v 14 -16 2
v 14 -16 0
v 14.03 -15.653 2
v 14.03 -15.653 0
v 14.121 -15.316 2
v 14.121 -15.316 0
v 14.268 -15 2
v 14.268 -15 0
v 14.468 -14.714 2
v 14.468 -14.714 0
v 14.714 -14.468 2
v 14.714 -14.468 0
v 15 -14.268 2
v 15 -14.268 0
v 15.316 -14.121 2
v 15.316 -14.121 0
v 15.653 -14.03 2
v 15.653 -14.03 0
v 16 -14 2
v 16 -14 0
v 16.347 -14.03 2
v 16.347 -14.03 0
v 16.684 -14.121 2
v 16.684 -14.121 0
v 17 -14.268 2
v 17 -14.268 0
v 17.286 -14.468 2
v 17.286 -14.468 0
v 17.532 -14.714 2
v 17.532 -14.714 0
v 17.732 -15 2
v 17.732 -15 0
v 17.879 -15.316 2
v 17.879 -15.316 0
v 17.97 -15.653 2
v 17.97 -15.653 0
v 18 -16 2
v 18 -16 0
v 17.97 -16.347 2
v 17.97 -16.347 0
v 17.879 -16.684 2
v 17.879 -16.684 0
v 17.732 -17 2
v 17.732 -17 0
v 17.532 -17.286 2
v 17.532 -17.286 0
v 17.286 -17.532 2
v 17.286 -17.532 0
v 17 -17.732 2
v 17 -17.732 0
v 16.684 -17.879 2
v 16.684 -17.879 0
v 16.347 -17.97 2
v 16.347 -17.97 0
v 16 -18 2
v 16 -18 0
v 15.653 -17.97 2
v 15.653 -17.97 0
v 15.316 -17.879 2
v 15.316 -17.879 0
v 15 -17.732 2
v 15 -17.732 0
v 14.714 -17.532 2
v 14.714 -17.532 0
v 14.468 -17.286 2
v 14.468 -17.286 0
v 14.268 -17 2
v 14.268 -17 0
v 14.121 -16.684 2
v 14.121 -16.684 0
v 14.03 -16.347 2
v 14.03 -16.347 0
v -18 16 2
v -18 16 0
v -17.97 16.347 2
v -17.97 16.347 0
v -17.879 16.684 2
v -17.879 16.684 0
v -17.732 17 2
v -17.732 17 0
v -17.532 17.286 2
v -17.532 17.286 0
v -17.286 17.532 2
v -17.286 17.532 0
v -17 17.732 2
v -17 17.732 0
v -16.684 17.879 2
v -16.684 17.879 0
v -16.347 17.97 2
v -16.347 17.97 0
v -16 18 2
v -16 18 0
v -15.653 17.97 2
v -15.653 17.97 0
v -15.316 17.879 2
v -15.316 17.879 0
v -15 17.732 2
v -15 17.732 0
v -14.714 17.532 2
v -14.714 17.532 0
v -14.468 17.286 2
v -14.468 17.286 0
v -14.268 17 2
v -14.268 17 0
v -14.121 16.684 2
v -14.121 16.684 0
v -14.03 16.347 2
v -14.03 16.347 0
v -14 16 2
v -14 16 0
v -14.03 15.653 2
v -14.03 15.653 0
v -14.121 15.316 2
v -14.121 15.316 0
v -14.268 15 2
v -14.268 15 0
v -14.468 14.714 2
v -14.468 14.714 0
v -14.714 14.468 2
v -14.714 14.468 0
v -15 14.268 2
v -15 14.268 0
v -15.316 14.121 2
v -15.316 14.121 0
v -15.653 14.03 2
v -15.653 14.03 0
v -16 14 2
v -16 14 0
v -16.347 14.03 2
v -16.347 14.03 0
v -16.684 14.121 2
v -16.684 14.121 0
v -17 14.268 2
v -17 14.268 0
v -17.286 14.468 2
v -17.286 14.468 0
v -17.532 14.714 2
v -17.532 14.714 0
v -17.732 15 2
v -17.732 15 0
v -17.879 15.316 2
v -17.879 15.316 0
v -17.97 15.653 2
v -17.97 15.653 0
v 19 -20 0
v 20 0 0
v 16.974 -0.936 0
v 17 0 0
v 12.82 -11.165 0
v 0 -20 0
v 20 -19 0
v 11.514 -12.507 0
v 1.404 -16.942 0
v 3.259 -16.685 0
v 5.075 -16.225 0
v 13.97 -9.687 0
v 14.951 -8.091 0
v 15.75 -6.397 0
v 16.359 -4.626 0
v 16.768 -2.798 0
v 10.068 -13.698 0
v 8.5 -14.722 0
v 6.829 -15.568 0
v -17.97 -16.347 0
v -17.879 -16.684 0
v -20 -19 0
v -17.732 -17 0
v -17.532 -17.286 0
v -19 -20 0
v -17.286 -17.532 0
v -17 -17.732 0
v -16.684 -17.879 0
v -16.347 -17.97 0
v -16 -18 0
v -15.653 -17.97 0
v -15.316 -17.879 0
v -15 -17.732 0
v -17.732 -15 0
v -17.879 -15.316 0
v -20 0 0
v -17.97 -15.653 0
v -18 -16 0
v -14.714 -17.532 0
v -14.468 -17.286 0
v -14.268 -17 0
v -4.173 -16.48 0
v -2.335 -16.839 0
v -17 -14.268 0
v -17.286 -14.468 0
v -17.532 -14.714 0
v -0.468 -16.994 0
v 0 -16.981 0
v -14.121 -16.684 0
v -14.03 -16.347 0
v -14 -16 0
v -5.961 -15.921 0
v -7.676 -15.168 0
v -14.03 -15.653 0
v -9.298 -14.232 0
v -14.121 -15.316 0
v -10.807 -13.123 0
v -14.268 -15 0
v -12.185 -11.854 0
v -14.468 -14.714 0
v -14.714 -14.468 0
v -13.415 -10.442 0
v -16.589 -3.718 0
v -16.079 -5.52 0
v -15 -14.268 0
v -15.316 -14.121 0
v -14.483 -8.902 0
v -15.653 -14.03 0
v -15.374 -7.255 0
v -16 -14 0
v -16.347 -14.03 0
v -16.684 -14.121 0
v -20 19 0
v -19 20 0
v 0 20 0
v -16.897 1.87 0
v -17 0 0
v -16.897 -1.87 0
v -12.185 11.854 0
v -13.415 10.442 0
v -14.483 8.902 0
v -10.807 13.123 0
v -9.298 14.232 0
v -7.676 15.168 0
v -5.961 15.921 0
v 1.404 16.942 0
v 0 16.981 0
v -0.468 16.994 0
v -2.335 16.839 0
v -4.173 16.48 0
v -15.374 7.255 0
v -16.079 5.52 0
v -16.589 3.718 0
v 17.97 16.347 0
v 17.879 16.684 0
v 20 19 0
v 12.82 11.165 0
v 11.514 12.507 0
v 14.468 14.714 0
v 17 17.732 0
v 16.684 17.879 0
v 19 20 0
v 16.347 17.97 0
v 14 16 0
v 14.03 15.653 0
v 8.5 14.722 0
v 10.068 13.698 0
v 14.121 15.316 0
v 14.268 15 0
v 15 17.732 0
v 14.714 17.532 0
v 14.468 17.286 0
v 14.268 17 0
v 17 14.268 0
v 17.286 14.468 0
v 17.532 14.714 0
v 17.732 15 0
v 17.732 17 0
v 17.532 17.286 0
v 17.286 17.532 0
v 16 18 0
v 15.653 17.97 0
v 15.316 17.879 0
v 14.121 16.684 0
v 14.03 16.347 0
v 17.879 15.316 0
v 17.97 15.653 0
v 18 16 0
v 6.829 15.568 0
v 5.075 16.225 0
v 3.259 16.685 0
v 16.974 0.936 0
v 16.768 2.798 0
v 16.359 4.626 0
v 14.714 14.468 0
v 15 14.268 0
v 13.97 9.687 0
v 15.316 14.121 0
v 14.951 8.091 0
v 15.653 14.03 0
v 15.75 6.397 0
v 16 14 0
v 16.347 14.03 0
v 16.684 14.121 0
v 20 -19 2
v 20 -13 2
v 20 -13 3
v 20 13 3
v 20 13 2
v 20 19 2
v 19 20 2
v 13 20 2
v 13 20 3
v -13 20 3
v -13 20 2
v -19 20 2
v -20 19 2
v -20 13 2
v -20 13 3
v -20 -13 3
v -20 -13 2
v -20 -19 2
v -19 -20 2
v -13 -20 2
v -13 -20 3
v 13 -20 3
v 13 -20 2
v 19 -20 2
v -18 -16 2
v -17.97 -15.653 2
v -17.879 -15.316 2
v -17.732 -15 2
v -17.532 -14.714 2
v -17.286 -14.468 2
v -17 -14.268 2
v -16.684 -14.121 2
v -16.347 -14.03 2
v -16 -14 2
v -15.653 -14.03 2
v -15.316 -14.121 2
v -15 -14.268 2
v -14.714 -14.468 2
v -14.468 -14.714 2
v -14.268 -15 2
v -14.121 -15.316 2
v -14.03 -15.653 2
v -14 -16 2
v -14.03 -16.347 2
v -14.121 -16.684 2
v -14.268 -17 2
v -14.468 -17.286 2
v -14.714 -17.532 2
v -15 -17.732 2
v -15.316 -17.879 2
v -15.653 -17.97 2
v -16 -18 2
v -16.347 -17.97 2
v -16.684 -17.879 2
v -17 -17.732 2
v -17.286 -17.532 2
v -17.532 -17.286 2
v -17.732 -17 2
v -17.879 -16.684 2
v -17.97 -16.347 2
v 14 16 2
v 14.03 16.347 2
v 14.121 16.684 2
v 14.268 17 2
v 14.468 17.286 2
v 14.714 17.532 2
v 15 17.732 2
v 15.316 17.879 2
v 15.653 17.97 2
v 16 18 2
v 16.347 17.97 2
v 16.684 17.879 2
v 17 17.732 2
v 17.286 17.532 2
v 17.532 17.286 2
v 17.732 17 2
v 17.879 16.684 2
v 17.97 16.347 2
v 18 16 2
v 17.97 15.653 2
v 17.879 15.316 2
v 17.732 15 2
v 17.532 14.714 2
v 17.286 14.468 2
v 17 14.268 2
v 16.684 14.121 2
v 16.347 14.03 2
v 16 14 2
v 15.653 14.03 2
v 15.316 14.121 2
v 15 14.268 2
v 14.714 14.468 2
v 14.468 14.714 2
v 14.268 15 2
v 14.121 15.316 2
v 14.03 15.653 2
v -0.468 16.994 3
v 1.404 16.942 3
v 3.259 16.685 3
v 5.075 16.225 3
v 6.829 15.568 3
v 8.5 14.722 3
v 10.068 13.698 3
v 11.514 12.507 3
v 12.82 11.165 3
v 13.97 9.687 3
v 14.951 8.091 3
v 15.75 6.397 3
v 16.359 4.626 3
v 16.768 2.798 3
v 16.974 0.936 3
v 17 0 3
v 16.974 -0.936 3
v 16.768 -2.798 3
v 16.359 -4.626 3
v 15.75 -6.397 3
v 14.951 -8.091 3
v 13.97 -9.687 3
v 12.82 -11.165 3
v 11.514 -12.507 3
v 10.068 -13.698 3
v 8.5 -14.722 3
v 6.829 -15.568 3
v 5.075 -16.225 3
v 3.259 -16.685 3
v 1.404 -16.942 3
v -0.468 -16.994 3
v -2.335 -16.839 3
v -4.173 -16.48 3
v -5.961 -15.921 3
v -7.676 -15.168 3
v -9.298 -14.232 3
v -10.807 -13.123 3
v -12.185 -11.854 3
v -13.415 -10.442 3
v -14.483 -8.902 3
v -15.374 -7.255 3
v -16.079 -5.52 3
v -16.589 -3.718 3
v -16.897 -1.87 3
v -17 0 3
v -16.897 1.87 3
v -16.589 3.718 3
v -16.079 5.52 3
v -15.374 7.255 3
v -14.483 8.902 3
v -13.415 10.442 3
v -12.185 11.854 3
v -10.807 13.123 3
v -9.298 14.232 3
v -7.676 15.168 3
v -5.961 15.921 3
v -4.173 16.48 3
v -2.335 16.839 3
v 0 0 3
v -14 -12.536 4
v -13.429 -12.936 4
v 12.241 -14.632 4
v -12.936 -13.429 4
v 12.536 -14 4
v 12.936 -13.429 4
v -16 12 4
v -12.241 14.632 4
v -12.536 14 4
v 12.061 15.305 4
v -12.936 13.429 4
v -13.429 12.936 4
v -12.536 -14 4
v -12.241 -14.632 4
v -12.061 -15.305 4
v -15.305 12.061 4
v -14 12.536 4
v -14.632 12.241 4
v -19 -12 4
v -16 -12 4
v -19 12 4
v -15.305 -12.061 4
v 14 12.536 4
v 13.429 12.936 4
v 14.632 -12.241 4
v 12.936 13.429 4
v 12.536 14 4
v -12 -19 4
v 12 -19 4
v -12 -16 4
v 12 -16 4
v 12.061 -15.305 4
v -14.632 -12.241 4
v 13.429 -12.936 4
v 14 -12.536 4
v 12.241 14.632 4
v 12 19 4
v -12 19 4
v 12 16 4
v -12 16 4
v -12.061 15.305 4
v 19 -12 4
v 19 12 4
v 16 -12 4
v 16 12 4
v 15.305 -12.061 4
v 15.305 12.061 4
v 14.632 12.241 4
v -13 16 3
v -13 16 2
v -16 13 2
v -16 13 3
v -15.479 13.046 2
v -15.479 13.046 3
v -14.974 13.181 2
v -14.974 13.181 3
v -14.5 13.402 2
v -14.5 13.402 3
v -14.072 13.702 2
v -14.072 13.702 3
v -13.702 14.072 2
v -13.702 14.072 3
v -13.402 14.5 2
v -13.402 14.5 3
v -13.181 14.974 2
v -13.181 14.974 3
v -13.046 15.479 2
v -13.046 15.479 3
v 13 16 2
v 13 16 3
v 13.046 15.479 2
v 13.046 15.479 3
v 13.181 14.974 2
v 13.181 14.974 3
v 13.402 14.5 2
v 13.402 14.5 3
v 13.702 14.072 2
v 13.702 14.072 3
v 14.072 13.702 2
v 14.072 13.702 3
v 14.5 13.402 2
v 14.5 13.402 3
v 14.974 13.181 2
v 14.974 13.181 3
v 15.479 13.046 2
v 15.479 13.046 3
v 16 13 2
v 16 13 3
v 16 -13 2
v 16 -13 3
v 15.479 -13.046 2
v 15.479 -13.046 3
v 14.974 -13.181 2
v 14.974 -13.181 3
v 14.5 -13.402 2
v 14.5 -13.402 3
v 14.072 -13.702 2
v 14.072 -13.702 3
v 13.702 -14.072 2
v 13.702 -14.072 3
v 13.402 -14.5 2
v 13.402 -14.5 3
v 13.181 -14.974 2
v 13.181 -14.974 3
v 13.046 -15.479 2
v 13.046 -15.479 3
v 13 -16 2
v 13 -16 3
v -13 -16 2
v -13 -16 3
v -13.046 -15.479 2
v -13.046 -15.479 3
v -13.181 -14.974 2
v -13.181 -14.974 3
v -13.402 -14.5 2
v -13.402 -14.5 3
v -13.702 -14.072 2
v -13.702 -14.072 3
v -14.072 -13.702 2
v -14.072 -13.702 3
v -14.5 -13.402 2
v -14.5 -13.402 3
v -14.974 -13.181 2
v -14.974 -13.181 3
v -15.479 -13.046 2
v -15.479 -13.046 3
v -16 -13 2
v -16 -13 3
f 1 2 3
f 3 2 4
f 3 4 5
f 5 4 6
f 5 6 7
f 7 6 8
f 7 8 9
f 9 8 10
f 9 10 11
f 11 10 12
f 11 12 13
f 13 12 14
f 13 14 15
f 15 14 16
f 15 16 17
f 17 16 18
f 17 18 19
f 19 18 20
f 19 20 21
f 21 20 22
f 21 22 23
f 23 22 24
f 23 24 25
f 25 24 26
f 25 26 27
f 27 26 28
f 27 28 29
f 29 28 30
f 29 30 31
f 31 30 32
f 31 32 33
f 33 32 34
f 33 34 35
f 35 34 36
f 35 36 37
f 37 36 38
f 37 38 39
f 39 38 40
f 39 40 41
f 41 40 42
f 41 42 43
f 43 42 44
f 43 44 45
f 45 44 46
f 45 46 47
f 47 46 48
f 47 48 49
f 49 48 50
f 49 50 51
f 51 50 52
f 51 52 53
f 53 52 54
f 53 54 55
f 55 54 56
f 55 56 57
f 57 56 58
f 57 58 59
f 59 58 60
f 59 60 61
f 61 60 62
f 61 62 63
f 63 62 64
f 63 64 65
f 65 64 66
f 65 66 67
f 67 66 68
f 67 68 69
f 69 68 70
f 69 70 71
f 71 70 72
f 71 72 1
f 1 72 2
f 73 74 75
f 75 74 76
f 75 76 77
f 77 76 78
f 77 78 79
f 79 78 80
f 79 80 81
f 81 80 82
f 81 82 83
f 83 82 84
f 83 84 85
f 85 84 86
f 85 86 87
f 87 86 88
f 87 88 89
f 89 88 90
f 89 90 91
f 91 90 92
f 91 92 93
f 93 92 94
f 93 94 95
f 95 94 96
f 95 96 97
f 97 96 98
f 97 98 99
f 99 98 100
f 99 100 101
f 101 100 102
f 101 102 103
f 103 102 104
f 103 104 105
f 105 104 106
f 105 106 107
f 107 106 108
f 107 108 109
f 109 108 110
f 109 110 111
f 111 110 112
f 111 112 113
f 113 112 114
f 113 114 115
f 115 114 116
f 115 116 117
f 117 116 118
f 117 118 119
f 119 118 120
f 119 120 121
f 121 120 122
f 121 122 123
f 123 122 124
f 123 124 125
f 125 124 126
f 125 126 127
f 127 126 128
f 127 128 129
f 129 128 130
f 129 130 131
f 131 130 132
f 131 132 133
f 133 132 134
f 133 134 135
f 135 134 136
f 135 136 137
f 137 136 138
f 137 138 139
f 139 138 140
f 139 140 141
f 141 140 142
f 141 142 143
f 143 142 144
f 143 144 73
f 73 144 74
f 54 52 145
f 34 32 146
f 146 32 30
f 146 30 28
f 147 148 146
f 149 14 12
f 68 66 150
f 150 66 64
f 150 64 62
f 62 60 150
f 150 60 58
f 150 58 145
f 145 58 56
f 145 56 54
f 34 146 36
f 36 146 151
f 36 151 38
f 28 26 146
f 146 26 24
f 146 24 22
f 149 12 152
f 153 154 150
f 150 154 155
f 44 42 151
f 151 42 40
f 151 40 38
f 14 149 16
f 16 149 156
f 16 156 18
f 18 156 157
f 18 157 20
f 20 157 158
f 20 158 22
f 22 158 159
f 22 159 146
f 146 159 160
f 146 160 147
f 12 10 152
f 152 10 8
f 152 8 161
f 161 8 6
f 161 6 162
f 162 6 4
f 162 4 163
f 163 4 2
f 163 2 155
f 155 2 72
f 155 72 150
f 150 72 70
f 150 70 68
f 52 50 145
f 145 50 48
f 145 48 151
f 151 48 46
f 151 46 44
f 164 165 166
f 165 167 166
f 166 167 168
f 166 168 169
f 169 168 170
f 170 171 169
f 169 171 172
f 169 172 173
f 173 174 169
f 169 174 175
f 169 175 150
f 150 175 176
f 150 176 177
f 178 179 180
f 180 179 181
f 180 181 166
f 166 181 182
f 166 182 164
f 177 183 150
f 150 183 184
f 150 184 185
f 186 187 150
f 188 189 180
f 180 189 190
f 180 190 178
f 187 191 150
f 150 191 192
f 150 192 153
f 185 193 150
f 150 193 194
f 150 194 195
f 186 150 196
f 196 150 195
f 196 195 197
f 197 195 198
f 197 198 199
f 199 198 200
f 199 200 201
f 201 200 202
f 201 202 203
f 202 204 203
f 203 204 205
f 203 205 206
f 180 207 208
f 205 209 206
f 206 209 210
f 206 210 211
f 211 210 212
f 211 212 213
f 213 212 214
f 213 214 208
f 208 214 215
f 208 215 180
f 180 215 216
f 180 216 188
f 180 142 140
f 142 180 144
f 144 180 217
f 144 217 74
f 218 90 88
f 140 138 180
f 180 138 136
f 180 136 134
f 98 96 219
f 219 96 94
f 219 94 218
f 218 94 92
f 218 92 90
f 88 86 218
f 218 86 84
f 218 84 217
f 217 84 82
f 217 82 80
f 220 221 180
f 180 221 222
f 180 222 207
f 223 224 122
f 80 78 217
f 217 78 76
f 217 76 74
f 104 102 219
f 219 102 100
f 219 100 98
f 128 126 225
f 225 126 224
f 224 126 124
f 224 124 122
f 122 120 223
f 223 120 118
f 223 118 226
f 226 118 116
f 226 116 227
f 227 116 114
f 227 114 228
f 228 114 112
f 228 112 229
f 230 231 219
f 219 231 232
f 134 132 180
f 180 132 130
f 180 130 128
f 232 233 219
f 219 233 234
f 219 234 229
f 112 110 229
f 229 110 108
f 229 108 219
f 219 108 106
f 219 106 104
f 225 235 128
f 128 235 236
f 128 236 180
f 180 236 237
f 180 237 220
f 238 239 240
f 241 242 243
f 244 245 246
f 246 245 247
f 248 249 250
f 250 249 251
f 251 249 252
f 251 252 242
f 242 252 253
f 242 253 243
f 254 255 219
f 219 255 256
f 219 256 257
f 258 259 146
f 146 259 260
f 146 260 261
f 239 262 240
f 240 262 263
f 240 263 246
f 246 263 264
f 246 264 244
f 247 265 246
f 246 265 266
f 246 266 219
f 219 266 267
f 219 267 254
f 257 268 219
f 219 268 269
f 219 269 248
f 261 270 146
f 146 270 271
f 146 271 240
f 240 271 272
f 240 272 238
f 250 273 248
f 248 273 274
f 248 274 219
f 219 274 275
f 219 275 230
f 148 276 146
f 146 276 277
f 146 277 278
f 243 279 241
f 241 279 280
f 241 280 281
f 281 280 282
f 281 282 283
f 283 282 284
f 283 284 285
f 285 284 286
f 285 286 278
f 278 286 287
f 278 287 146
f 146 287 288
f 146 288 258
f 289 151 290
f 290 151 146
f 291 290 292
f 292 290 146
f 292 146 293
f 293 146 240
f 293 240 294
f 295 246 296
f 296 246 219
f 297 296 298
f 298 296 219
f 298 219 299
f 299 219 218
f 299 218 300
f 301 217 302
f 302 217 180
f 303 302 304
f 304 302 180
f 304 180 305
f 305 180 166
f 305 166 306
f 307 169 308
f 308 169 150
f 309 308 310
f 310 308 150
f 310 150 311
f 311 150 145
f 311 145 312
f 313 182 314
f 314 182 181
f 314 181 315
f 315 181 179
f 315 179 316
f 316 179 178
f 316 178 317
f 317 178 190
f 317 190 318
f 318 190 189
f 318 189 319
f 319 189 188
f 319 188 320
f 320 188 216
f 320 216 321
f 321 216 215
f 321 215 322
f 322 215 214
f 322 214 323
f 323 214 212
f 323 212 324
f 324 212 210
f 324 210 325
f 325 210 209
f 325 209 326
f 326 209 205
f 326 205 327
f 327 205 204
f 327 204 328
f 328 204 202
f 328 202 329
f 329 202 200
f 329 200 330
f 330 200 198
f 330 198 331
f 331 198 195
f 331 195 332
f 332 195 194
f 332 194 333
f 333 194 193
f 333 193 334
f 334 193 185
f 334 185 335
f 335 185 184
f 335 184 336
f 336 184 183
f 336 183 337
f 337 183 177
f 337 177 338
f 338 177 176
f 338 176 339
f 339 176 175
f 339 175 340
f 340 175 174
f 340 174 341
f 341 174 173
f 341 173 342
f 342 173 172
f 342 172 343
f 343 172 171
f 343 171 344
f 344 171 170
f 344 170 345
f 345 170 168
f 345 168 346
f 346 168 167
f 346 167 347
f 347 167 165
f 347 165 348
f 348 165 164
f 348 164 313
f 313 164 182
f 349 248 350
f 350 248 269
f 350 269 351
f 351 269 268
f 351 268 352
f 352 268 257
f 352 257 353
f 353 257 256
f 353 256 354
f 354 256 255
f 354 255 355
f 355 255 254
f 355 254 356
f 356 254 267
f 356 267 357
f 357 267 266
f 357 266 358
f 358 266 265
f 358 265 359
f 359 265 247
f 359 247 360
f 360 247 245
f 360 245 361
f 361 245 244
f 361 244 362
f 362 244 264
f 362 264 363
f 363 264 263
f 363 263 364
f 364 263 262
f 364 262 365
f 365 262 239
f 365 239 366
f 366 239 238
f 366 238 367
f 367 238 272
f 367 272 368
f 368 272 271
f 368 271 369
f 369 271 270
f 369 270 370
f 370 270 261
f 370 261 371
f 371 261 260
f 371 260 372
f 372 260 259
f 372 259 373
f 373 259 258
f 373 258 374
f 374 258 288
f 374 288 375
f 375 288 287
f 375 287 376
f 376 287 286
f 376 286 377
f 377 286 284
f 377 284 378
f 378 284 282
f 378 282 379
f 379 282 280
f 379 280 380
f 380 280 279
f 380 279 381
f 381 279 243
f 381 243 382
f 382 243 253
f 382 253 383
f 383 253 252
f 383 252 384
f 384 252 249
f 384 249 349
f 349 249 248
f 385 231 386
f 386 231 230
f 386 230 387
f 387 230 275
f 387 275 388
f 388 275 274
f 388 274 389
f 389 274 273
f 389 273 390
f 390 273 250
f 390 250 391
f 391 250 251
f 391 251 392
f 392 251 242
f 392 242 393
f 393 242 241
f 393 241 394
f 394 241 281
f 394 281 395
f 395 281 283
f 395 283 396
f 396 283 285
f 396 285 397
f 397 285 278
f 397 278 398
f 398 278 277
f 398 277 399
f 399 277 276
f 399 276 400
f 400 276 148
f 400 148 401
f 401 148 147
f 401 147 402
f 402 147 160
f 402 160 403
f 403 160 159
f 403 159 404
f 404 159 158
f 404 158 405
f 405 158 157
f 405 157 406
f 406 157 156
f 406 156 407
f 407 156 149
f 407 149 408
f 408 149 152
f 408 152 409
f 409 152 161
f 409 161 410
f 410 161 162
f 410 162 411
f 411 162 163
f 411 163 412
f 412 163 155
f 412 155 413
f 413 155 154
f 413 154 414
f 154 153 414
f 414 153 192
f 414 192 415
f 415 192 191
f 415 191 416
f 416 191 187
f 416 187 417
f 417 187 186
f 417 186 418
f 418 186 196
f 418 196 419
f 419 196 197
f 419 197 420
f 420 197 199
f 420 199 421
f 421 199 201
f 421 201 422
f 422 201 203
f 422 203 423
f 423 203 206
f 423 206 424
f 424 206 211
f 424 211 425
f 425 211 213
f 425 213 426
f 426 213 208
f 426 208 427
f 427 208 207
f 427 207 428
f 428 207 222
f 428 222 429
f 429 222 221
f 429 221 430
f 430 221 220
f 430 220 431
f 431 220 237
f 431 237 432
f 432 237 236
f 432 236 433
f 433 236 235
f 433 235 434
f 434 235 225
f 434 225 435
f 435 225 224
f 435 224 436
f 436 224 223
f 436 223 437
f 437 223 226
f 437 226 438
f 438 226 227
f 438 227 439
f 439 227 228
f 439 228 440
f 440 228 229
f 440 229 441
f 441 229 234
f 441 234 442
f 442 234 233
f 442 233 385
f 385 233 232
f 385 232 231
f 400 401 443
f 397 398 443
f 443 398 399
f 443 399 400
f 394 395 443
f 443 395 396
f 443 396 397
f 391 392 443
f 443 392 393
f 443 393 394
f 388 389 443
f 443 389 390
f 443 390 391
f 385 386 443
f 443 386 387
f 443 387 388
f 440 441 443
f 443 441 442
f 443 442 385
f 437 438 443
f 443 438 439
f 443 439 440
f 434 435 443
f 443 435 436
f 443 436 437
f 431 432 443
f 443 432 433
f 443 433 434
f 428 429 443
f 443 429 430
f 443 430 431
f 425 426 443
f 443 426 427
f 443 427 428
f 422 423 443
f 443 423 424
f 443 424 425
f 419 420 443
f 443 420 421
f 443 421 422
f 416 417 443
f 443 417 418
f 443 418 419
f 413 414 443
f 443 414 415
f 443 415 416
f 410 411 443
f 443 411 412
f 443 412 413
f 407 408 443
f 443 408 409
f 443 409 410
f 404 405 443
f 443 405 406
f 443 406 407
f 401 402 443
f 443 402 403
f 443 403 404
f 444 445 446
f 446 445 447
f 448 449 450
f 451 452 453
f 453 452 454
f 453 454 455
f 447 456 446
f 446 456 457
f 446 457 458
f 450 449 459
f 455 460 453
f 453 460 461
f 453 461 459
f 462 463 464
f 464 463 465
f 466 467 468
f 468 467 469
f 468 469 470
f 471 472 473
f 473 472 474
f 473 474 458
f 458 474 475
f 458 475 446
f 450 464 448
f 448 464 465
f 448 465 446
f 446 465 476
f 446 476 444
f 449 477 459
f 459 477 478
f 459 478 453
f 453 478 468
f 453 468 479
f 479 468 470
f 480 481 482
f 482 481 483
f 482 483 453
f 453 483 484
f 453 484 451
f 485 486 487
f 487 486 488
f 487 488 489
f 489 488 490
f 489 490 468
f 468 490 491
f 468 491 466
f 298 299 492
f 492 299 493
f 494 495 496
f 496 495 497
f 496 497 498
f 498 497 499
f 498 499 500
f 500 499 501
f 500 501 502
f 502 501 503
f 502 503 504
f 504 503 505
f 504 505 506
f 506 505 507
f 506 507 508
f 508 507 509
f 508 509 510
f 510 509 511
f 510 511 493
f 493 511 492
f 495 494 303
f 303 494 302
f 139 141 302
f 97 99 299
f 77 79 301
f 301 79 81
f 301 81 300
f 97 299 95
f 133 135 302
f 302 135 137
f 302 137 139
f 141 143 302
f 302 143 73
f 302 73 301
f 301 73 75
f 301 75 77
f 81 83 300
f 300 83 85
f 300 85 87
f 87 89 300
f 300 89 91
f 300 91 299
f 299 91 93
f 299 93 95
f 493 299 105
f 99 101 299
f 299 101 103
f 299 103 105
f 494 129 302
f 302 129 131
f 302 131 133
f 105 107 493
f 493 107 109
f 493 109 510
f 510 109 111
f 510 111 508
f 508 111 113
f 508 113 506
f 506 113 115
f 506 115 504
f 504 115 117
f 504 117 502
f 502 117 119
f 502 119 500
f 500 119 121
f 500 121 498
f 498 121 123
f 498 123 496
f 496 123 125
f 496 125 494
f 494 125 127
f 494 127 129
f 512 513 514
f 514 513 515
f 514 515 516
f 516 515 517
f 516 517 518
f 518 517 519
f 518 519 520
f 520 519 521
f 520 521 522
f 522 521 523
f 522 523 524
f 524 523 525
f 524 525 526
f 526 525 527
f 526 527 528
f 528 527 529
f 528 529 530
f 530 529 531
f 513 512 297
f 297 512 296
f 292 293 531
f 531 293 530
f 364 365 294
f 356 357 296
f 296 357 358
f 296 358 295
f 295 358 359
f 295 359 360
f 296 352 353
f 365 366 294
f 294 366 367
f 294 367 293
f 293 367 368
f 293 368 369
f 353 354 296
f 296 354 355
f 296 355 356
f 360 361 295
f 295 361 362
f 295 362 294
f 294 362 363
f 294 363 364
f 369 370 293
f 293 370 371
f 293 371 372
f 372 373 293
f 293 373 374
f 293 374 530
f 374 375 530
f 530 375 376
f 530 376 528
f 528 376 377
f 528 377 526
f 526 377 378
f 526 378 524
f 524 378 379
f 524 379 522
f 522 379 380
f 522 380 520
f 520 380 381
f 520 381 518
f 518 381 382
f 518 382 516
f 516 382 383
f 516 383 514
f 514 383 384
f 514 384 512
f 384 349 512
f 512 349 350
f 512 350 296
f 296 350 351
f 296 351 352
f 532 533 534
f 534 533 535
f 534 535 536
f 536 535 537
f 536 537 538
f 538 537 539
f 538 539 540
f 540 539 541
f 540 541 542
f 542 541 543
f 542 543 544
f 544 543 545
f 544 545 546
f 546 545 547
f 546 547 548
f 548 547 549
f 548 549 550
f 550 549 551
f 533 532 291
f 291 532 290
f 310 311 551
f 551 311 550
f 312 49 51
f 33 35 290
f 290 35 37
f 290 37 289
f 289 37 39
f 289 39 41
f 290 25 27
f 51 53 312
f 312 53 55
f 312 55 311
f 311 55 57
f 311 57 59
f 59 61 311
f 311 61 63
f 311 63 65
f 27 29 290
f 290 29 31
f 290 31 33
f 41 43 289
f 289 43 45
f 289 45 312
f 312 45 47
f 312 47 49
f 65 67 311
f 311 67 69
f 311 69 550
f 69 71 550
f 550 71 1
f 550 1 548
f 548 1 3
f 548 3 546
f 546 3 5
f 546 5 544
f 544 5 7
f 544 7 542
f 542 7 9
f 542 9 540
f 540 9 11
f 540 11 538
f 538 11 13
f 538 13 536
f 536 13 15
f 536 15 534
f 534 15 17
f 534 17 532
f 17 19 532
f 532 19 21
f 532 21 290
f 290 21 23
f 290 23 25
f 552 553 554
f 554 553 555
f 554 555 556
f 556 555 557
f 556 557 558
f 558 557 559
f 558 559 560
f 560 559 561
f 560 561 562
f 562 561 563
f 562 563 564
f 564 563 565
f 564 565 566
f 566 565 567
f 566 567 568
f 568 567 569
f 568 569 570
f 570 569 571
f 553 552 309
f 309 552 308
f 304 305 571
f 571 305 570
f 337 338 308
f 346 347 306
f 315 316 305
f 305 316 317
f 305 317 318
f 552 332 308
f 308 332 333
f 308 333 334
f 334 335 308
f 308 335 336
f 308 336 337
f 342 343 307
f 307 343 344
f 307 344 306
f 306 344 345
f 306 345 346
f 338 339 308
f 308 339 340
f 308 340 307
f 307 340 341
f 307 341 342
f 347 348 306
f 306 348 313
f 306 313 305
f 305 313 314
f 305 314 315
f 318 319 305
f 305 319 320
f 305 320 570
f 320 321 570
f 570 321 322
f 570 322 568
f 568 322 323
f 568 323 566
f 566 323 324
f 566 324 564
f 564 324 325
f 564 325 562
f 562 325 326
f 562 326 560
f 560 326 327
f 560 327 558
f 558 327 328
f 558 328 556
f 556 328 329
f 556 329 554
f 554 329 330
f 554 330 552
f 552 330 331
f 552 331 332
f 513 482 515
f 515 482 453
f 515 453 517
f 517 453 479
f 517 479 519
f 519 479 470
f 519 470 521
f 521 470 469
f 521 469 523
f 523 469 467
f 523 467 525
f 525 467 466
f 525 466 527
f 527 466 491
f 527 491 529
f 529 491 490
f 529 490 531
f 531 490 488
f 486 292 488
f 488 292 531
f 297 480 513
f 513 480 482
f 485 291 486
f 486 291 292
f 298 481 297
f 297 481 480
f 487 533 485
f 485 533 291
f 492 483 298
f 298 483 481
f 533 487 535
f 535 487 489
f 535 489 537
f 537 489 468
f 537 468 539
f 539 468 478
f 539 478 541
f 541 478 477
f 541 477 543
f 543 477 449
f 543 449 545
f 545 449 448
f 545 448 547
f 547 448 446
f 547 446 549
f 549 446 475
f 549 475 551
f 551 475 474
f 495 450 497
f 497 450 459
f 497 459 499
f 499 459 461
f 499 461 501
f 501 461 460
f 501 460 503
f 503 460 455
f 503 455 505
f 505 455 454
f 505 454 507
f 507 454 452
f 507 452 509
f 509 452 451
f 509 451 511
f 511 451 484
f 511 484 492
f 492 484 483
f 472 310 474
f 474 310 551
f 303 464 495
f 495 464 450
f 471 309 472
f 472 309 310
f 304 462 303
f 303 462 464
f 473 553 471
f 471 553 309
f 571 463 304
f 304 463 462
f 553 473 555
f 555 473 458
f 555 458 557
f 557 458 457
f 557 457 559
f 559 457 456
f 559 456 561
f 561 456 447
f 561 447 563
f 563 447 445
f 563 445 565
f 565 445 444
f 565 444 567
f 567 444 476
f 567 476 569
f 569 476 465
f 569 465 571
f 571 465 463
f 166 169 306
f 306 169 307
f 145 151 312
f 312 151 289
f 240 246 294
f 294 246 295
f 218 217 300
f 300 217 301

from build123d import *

# Parameters (mm, degrees)
CROQUIS1_W              = 40
CROQUIS1_H              = 40
CROQUIS1_R              = 2
CROQUIS1_R_2            = 17
SALIENTE_EXTRUIR1_DEPTH = 3
CROQUIS2_W              = 40
CROQUIS2_H              = 40
SALIENTE_EXTRUIR2_DEPTH = 1
CORTAR_EXTRUIR1_DEPTH   = 2
CHAFL_N1_SIZE           = 1


with BuildPart() as part:
    # Croquis1 → Saliente-Extruir1 (new body)
    with BuildSketch(Plane.XY):
        Rectangle(CROQUIS1_W, CROQUIS1_H)
        with Locations((-16, -16)):
            Circle(CROQUIS1_R, mode=Mode.SUBTRACT)
        with Locations((16, -16)):
            Circle(CROQUIS1_R, mode=Mode.SUBTRACT)
        with Locations((16, 16)):
            Circle(CROQUIS1_R, mode=Mode.SUBTRACT)
        with Locations((-16, 16)):
            Circle(CROQUIS1_R, mode=Mode.SUBTRACT)
        Circle(CROQUIS1_R_2, mode=Mode.SUBTRACT)
    extrude(amount=SALIENTE_EXTRUIR1_DEPTH)

    # Croquis2 → Saliente-Extruir2 (add)
    with BuildSketch(Plane.XY.offset(3)):
        Rectangle(CROQUIS2_W, CROQUIS2_H)
    extrude(amount=SALIENTE_EXTRUIR2_DEPTH)

    # Croquis3 → Cortar-Extruir1 (cut)
    with BuildSketch(Plane.XY.offset(4)):
        with BuildLine():
            Line((13, 16), (13, 20))
            Line((13, 20), (20, 20))
            Line((20, 20), (20, 13))
            Line((20, 13), (16, 13))
            ThreePointArc((16, 13), (13.878679656, 13.878679656), (13, 16))
        make_face()
        with BuildLine():
            Line((-13, 16), (-13, 20))
            Line((-13, 20), (-20, 20))
            Line((-20, 20), (-20, 13))
            Line((-20, 13), (-16, 13))
            ThreePointArc((-16, 13), (-13.878679656, 13.878679656), (-13, 16))
        make_face()
        with BuildLine():
            Line((16, -13), (20, -13))
            Line((20, -13), (20, -20))
            Line((20, -20), (13, -20))
            Line((13, -20), (13, -16))
            ThreePointArc((13, -16), (13.878679656, -13.878679656), (16, -13))
        make_face()
        with BuildLine():
            Line((-13, -16), (-13, -20))
            Line((-13, -20), (-20, -20))
            Line((-20, -20), (-20, -13))
            Line((-20, -13), (-16, -13))
            ThreePointArc((-16, -13), (-13.878679656, -13.878679656), (-13, -16))
        make_face()
    extrude(amount=-CORTAR_EXTRUIR1_DEPTH, mode=Mode.SUBTRACT)

    # Chaflán1
    chafl_n1_edges = [part.edges().sort_by_distance(p)[0] for p in [
        (-20, 0, 4),
        (0, -20, 4),
        (20, 0, 4),
        (0, 20, 4),
        (20, -20, 1),
        (-20, -20, 1),
        (-20, 20, 1),
        (20, 20, 1),
        (-13.878679656, -13.878679656, 4),
        (-18, -13, 4),
        (-13, -18, 4),
        (13.878679656, -13.878679656, 4),
        (13, -18, 4),
        (18, -13, 4),
        (13.878679656, 13.878679656, 4),
        (18, 13, 4),
        (13, 18, 4),
        (-18, 13, 4),
        (-13.878679656, 13.878679656, 4),
        (-13, 18, 4),
    ]]
    chamfer(chafl_n1_edges, length=CHAFL_N1_SIZE)


solid = part.part
